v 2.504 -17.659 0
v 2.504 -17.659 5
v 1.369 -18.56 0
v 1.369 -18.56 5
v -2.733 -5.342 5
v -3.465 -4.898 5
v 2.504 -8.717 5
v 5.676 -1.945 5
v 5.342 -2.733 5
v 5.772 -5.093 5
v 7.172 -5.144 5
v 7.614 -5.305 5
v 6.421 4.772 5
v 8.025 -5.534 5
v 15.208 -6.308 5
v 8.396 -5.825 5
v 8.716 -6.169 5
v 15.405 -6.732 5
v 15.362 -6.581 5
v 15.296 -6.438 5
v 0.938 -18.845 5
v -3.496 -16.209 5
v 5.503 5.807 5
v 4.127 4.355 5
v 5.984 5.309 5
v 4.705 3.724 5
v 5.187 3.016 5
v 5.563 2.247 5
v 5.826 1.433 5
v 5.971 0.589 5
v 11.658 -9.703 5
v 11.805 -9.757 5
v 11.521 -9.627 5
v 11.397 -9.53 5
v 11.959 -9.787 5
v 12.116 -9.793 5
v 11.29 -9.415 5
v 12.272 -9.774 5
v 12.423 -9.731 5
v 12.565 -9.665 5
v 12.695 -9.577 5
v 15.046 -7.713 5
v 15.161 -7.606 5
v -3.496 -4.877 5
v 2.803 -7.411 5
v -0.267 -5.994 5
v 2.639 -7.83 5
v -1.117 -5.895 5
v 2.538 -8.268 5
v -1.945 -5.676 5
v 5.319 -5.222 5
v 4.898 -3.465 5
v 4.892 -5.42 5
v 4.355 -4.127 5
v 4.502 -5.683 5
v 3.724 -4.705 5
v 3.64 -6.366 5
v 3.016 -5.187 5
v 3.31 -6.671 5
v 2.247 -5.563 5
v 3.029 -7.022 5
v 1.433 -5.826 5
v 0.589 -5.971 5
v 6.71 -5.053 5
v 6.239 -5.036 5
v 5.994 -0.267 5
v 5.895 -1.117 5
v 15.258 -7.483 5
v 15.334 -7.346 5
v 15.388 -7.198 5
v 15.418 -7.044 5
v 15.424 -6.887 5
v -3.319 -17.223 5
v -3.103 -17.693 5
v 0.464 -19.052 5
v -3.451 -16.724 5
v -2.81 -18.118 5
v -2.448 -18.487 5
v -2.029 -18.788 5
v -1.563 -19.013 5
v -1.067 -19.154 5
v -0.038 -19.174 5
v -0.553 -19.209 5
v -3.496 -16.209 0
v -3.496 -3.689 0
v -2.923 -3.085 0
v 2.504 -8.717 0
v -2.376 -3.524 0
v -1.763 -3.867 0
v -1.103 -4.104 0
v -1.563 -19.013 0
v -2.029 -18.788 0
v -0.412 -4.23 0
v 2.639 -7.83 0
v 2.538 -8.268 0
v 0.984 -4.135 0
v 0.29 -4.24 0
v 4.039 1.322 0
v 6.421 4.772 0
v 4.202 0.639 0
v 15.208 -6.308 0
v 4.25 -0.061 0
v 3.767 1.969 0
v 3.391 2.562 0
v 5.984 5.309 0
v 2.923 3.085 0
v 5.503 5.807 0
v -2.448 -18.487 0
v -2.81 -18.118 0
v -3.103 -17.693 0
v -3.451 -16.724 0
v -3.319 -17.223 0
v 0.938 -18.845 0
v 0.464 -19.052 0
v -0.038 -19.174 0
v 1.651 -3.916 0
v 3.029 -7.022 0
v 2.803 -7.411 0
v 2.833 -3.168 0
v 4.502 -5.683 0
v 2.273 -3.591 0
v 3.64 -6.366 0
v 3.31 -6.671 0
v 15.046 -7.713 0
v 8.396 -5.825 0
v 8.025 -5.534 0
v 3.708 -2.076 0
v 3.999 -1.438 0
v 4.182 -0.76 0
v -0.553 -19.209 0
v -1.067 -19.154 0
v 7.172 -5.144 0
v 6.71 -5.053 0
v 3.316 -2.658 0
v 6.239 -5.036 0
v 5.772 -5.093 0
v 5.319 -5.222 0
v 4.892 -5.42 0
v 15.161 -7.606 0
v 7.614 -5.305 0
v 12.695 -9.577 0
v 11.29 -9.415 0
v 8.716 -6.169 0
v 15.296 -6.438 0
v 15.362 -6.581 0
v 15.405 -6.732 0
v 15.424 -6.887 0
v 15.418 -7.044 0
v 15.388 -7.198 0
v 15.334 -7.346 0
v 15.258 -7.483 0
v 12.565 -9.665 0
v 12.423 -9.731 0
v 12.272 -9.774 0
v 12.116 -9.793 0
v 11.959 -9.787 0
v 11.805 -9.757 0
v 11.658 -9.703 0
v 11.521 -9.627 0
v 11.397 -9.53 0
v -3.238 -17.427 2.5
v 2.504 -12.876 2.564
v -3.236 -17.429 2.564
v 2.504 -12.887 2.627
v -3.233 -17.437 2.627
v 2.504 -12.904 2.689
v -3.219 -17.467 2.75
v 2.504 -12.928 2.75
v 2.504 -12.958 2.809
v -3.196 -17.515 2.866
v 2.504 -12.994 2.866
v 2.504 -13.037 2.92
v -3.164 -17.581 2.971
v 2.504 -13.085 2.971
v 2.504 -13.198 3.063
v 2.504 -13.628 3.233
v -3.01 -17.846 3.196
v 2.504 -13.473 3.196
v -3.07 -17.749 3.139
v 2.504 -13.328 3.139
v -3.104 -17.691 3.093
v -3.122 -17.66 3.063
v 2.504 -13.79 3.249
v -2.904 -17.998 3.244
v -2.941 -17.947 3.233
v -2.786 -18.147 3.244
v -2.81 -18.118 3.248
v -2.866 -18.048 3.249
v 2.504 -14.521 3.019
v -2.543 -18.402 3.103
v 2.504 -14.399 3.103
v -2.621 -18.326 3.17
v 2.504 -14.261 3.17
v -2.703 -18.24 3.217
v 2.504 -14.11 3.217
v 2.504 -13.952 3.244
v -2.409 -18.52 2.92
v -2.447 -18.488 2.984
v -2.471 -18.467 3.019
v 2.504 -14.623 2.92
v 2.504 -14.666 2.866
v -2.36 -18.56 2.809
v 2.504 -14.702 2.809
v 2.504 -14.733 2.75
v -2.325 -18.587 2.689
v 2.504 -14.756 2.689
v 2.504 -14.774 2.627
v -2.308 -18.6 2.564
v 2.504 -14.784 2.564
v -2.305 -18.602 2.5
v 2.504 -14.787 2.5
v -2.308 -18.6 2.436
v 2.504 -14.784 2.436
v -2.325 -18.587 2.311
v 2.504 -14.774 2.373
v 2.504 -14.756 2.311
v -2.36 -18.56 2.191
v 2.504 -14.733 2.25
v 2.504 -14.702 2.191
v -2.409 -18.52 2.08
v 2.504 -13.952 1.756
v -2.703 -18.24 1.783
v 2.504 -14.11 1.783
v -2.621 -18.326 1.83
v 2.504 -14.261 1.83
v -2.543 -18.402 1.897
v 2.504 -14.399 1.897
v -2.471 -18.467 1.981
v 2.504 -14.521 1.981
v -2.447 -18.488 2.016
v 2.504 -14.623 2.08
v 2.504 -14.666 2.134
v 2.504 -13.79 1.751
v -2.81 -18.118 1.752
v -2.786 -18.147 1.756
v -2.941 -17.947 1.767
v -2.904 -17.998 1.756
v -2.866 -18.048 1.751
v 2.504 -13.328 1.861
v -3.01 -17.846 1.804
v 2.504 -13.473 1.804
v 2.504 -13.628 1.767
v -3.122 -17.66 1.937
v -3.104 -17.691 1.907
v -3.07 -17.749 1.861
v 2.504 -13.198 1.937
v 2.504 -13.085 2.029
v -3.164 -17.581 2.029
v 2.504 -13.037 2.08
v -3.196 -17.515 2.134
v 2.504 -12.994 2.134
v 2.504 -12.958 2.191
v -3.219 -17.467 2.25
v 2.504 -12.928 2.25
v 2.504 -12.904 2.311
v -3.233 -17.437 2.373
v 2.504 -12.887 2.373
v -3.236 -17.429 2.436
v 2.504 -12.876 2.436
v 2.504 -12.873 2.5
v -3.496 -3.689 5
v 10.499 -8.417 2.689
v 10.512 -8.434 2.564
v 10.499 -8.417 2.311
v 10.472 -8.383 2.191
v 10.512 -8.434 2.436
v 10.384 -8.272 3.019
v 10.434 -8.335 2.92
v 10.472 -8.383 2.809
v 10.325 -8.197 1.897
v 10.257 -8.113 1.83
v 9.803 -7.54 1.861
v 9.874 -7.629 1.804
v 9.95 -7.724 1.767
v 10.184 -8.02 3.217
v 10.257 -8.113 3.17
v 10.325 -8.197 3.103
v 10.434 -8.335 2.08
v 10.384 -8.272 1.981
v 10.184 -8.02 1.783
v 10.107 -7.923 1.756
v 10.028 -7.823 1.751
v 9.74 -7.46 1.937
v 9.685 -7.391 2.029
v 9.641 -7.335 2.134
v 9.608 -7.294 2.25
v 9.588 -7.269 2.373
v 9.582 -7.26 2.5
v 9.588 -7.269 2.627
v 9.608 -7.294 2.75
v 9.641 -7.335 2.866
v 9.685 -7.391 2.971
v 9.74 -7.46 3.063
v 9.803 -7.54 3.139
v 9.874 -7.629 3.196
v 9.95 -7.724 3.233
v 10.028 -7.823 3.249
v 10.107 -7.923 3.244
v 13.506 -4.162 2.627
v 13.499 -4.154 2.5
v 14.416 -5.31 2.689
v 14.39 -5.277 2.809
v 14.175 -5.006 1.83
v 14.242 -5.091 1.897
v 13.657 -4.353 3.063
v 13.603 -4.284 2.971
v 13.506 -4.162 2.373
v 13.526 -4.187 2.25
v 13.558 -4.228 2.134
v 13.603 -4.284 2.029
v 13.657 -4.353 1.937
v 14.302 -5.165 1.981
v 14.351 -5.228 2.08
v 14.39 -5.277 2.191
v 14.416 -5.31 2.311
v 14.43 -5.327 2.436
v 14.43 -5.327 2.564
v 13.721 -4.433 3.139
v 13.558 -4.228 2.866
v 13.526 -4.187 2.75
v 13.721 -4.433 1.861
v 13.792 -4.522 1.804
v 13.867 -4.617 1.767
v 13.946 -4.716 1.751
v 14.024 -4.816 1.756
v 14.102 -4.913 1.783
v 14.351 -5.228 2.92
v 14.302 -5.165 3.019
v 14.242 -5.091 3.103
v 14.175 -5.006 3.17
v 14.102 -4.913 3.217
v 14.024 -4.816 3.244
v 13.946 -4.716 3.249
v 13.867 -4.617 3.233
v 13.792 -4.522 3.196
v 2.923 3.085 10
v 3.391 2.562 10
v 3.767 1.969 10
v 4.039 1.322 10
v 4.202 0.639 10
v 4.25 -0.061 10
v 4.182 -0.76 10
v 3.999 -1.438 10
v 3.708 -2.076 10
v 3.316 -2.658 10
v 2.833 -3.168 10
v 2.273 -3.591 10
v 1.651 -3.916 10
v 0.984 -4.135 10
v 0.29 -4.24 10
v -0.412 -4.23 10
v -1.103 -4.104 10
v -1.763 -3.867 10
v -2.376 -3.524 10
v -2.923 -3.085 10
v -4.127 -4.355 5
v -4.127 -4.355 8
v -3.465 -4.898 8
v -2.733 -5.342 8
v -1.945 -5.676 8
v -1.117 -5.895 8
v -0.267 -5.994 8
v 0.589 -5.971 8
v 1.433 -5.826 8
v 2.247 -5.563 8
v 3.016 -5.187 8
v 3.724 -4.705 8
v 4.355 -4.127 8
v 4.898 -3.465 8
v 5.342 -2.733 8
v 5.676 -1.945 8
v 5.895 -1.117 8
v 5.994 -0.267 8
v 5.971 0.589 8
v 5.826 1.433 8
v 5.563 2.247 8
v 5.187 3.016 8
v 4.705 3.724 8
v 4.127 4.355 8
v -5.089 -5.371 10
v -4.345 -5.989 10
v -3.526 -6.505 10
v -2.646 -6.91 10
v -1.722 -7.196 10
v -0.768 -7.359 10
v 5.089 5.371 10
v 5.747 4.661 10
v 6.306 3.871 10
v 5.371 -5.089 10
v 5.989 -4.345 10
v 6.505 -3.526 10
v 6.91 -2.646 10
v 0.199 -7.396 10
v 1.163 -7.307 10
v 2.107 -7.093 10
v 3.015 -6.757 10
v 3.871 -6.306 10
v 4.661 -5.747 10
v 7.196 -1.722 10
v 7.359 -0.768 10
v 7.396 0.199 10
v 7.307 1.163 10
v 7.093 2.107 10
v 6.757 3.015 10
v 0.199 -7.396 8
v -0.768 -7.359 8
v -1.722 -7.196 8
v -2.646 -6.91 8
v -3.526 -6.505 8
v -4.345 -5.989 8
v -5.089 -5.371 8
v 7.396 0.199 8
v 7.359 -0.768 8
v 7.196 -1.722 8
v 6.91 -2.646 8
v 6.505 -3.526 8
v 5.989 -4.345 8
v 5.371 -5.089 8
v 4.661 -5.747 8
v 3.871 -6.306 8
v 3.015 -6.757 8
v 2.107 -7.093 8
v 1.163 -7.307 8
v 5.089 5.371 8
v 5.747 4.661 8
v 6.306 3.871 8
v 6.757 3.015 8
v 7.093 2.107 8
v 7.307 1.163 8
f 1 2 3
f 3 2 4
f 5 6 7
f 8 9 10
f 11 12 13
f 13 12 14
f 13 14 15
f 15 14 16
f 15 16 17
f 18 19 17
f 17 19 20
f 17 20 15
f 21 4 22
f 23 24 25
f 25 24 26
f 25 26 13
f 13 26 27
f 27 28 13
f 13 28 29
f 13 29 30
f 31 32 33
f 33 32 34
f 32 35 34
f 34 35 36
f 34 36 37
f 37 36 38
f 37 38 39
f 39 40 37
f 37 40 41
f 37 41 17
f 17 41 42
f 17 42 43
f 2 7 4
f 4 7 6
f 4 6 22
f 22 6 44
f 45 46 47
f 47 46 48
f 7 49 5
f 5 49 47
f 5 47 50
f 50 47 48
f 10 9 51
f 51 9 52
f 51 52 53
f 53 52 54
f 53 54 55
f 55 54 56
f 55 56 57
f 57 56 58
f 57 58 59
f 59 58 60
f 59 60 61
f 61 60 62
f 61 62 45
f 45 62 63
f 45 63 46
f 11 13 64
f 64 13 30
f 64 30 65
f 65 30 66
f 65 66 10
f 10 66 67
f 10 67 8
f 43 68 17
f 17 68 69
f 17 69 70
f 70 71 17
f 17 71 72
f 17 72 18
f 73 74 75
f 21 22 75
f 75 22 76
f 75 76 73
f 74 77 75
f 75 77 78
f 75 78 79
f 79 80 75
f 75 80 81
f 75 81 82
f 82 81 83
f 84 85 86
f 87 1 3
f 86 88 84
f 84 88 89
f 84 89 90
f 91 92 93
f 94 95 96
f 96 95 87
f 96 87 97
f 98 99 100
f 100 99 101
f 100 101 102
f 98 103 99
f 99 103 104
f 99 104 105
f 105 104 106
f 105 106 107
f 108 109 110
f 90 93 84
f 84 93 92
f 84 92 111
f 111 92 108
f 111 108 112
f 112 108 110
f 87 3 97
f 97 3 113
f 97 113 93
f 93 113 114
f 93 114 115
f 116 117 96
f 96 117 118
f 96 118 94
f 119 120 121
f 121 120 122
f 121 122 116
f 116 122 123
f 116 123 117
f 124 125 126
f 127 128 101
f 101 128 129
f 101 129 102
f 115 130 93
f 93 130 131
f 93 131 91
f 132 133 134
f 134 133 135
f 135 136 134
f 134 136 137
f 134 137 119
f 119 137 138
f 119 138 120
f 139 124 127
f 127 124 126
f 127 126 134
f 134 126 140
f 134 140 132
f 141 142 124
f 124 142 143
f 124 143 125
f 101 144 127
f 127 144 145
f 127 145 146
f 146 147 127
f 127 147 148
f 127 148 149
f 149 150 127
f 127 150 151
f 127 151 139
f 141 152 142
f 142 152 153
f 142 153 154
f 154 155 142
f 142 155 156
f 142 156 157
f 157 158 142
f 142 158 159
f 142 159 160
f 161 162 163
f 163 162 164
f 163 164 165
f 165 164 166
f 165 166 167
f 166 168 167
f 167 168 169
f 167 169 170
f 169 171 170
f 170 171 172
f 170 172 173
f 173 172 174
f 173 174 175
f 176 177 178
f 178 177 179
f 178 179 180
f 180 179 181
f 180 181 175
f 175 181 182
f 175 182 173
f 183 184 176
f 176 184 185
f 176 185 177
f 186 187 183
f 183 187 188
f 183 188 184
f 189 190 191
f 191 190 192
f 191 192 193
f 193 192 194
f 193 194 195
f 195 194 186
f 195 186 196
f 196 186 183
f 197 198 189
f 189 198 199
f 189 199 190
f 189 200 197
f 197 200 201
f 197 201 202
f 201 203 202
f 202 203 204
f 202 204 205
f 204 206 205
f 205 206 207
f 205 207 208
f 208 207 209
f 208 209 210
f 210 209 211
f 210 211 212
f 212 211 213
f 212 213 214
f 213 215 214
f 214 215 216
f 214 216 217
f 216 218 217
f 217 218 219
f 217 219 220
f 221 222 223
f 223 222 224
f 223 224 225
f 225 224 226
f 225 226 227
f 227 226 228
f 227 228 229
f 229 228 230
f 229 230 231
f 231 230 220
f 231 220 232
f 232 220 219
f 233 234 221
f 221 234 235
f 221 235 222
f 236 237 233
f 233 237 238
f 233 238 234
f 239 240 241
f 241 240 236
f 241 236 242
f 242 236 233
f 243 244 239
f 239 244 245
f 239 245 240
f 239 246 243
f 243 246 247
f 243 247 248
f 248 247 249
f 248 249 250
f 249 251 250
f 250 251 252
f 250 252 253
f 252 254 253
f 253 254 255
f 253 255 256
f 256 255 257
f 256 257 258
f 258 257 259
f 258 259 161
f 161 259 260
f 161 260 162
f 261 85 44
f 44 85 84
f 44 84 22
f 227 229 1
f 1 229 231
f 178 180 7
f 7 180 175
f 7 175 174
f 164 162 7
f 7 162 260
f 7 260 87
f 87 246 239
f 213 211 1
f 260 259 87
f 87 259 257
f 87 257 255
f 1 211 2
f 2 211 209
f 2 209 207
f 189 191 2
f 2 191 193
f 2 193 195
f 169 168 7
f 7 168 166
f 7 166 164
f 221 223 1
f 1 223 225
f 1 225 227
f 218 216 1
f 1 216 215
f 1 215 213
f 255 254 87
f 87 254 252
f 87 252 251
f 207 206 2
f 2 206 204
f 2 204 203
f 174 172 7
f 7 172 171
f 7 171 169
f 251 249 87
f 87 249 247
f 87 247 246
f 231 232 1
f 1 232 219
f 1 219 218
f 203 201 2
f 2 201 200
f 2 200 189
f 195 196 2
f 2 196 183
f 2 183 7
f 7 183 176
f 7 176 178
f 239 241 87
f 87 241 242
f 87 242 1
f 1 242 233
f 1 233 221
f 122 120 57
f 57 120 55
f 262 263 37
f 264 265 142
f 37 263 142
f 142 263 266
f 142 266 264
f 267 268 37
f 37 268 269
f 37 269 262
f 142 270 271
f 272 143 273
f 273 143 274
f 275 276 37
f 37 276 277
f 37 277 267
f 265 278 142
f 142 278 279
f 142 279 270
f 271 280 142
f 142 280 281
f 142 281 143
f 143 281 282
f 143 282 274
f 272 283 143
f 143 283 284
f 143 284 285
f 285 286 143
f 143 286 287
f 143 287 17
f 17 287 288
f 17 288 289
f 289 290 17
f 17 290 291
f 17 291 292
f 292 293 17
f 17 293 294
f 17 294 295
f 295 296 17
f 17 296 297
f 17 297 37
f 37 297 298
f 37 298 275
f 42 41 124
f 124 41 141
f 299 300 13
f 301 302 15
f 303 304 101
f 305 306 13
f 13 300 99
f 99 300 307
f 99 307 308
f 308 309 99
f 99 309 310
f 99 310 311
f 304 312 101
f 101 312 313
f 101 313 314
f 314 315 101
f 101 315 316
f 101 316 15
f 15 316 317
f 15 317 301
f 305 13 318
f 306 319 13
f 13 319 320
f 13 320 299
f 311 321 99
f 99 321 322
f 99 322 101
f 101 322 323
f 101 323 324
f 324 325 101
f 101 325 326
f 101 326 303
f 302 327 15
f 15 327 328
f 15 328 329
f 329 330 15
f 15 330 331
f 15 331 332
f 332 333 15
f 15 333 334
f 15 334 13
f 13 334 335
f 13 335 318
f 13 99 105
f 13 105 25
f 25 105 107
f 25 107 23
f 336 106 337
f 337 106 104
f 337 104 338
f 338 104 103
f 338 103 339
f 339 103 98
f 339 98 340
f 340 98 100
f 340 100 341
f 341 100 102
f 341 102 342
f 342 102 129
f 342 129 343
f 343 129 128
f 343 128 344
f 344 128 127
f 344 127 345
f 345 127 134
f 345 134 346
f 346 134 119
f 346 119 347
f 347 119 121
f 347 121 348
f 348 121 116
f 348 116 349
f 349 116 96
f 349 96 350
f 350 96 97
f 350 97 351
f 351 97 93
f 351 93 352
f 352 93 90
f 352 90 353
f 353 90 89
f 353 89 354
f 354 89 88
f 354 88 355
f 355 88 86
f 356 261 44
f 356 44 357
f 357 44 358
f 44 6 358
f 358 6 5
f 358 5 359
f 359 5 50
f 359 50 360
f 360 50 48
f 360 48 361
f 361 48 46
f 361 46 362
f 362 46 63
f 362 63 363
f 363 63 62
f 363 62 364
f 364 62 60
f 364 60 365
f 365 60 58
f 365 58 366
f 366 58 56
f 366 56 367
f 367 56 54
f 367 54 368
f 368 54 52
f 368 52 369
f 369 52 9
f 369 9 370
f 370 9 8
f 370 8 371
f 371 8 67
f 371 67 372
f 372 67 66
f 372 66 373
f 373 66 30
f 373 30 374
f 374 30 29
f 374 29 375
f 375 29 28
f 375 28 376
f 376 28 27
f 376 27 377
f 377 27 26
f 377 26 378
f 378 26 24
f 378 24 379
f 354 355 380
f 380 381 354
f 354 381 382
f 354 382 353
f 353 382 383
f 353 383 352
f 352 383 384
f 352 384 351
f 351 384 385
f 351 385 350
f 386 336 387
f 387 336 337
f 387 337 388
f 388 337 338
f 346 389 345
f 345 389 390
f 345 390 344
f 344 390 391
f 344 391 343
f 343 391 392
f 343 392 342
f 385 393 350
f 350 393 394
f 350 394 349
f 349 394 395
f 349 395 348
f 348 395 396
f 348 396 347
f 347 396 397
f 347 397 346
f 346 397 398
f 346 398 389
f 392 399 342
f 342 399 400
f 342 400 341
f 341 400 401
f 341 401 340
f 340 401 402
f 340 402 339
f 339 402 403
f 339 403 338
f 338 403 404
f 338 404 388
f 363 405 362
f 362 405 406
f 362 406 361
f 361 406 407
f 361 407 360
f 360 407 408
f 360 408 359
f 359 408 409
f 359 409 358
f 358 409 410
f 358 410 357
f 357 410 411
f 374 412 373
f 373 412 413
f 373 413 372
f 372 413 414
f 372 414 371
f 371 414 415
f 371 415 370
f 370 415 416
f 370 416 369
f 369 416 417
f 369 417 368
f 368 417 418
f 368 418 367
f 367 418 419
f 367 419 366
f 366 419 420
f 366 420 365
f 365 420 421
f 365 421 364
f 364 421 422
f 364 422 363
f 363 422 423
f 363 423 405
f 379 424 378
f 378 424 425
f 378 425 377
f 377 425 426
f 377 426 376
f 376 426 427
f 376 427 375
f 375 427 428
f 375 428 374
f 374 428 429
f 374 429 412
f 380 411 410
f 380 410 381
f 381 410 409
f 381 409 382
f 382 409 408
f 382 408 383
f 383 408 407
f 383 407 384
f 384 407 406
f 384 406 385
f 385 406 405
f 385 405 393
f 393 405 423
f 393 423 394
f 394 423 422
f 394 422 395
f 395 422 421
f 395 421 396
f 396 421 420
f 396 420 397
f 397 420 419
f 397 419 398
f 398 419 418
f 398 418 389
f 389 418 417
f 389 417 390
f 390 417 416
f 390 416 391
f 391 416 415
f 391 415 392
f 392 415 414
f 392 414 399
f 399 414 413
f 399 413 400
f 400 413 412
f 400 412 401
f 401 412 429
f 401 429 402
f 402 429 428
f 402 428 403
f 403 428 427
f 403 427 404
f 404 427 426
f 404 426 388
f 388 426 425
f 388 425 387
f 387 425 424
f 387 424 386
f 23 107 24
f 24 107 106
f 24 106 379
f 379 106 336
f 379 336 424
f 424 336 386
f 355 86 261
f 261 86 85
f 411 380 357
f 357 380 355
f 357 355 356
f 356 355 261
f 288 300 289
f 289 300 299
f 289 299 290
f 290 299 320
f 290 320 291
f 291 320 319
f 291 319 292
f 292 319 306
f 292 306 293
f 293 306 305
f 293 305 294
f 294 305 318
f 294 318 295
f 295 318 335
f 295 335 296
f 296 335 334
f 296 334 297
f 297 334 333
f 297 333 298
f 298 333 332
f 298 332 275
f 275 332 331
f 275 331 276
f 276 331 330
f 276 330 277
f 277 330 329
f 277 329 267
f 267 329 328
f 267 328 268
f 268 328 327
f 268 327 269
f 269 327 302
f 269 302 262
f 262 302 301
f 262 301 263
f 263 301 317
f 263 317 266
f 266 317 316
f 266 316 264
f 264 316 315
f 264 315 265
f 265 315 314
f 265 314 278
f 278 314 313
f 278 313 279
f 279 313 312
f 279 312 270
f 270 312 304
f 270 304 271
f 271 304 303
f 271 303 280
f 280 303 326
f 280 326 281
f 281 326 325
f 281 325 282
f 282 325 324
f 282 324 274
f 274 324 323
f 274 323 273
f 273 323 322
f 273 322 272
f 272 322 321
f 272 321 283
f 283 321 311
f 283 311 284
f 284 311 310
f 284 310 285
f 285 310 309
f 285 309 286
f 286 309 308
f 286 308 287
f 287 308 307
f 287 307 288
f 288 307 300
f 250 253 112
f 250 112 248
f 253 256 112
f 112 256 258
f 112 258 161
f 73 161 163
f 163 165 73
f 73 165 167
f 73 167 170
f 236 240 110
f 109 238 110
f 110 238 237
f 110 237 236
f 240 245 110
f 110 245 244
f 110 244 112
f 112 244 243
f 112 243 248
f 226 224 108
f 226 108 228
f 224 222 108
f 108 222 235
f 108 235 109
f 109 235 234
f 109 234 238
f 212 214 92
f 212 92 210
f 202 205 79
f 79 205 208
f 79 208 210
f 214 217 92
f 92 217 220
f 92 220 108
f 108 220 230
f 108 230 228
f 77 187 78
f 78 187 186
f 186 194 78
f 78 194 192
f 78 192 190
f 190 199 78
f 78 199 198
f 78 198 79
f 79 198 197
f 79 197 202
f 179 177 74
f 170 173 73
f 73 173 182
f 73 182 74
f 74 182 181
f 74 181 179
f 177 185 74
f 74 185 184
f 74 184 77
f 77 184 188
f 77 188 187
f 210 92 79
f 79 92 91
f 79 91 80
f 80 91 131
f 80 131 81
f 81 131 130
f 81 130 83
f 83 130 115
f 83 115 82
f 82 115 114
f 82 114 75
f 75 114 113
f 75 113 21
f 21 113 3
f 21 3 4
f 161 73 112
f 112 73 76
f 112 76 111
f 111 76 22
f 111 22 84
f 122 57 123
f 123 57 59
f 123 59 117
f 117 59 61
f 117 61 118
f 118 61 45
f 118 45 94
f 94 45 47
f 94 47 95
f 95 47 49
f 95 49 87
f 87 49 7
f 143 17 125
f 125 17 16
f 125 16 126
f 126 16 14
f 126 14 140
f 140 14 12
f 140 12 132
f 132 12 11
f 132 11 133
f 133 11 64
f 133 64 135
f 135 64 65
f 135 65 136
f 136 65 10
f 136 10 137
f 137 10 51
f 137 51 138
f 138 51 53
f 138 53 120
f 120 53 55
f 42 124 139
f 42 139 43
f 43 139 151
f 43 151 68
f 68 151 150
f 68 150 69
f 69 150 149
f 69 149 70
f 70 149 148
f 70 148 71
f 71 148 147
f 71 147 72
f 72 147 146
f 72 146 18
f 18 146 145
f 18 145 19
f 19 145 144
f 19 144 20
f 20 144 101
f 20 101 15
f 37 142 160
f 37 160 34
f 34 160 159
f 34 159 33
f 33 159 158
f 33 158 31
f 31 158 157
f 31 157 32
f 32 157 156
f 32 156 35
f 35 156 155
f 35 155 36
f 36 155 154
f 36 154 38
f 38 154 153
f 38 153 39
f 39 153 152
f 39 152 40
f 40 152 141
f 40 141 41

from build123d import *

# Parameters (mm, degrees)
P_IDAT_VYSUNUT_M1_DEPTH  = 5
SKICA2_R                 = 6
SKICA2_R_2               = 4.25
P_IDAT_VYSUNUT_M2_DEPTH  = 3
SKICA3_R                 = 7.399081898
SKICA3_R_2               = 4.25
P_IDAT_VYSUNUT_M3_DEPTH  = 2
ODEBRAT_VYSUNUT_M1_DEPTH = 12
SKICA5_R                 = 0.75
ODEBRAT_VYSUNUT_M2_DEPTH = 22
ODEBRAT_VYSUNUT_M3_DEPTH = 22
ZAOBLIT1_R               = 3
ZAOBLIT2_R               = 1


with BuildPart() as part:
    # Skica1 → Přidat vysunutím1 (new body)
    with BuildSketch(Plane.XY):
        with BuildLine():
            ThreePointArc((4.25, 0), (1.26615959, -4.057011202), (-3.495571714, -2.417328772))
            Line((-3.495571714, -2.417328772), (-3.495571714, -22.417328772))
            Line((-3.495571714, -22.417328772), (2.504428286, -17.65904484))
            Line((2.504428286, -17.65904484), (2.504428286, -7.266994767))
            Line((2.504428286, -7.266994767), (6.852381906, -3.818861792))
            Line((6.852381906, -3.818861792), (11.911787503, -10.198563806))
            Line((11.911787503, -10.198563806), (15.829382947, -7.09172523))
            Line((15.829382947, -7.09172523), (6.421160578, 4.771655566))
            ThreePointArc((6.421160578, 4.771655566), (5.746609385, 5.565651855), (4.974594852, 6.26525387))
            Line((4.974594852, 6.26525387), (1.66035906, 3.912250988))
            ThreePointArc((1.66035906, 3.912250988), (3.543940322, 2.345844623), (4.25, 0))
        make_face()
    extrude(amount=P_IDAT_VYSUNUT_M1_DEPTH)

    # Skica2 → Přidat vysunutím2 (add)
    with BuildSketch(Plane.XY.offset(5)):
        with Locations(Location((0, 0, 0), (0, 0, 234.366710991))):
            Circle(SKICA2_R)
        with Locations(Location((0, 0, 0), (0, 0, 214.665420921))):
            Circle(SKICA2_R_2, mode=Mode.SUBTRACT)
    extrude(amount=P_IDAT_VYSUNUT_M2_DEPTH)

    # Skica3 → Přidat vysunutím3 (add)
    with BuildSketch(Plane.XY.offset(8)):
        Circle(SKICA3_R)
        with Locations(Location((0, 0, 0), (0, 0, 214.665420921))):
            Circle(SKICA3_R_2, mode=Mode.SUBTRACT)
    extrude(amount=P_IDAT_VYSUNUT_M3_DEPTH)

    # Skica4 → Odebrat vysunutím1 (cut)
    with BuildSketch(Plane.XY.offset(10)):
        Polygon((7.922687554, 8.36122904), (-6.923828501, -7.307080525), (-16.64765112, 7.717248389), align=None)
    extrude(amount=-ODEBRAT_VYSUNUT_M1_DEPTH, mode=Mode.SUBTRACT)

    # Skica5 → Odebrat vysunutím2 (cut)
    with BuildSketch(Plane(origin=(6.265061416, 4.968490178, 0), x_dir=(0, 0, -1), z_dir=(0.7835190888567162, 0.6213677151229708, 0))):
        with Locations(Location((-2.5, -12.392369605, 0), (0, 0, 90))):
            Circle(SKICA5_R)
    extrude(amount=-ODEBRAT_VYSUNUT_M2_DEPTH, mode=Mode.SUBTRACT)

    # Skica7 → Odebrat vysunutím3 (cut)
    with BuildSketch(Plane.XY.offset(5)):
        with BuildLine():
            Line((-3.495571714, -22.417328772), (1.368531431, -18.559864799))
            ThreePointArc((1.368531431, -18.559864799), (-1.800885961, -18.910447054), (-3.495571714, -16.209307532))
            Line((-3.495571714, -16.209307532), (-3.495571714, -22.417328772))
        make_face()
    extrude(amount=-ODEBRAT_VYSUNUT_M3_DEPTH, mode=Mode.SUBTRACT)

    # Zaoblit1
    zaoblit1_edges = [part.edges().sort_by_distance(p)[0] for p in [
        (6.852381906, -3.818861792, 2.5),
        (2.504428286, -7.266994767, 2.5),
    ]]
    fillet(zaoblit1_edges, radius=ZAOBLIT1_R)

    # Zaoblit2
    zaoblit2_edges = [part.edges().sort_by_distance(p)[0] for p in [
        (15.829382947, -7.09172523, 2.5),
        (11.911787503, -10.198563806, 2.5),
    ]]
    fillet(zaoblit2_edges, radius=ZAOBLIT2_R)


solid = part.part
